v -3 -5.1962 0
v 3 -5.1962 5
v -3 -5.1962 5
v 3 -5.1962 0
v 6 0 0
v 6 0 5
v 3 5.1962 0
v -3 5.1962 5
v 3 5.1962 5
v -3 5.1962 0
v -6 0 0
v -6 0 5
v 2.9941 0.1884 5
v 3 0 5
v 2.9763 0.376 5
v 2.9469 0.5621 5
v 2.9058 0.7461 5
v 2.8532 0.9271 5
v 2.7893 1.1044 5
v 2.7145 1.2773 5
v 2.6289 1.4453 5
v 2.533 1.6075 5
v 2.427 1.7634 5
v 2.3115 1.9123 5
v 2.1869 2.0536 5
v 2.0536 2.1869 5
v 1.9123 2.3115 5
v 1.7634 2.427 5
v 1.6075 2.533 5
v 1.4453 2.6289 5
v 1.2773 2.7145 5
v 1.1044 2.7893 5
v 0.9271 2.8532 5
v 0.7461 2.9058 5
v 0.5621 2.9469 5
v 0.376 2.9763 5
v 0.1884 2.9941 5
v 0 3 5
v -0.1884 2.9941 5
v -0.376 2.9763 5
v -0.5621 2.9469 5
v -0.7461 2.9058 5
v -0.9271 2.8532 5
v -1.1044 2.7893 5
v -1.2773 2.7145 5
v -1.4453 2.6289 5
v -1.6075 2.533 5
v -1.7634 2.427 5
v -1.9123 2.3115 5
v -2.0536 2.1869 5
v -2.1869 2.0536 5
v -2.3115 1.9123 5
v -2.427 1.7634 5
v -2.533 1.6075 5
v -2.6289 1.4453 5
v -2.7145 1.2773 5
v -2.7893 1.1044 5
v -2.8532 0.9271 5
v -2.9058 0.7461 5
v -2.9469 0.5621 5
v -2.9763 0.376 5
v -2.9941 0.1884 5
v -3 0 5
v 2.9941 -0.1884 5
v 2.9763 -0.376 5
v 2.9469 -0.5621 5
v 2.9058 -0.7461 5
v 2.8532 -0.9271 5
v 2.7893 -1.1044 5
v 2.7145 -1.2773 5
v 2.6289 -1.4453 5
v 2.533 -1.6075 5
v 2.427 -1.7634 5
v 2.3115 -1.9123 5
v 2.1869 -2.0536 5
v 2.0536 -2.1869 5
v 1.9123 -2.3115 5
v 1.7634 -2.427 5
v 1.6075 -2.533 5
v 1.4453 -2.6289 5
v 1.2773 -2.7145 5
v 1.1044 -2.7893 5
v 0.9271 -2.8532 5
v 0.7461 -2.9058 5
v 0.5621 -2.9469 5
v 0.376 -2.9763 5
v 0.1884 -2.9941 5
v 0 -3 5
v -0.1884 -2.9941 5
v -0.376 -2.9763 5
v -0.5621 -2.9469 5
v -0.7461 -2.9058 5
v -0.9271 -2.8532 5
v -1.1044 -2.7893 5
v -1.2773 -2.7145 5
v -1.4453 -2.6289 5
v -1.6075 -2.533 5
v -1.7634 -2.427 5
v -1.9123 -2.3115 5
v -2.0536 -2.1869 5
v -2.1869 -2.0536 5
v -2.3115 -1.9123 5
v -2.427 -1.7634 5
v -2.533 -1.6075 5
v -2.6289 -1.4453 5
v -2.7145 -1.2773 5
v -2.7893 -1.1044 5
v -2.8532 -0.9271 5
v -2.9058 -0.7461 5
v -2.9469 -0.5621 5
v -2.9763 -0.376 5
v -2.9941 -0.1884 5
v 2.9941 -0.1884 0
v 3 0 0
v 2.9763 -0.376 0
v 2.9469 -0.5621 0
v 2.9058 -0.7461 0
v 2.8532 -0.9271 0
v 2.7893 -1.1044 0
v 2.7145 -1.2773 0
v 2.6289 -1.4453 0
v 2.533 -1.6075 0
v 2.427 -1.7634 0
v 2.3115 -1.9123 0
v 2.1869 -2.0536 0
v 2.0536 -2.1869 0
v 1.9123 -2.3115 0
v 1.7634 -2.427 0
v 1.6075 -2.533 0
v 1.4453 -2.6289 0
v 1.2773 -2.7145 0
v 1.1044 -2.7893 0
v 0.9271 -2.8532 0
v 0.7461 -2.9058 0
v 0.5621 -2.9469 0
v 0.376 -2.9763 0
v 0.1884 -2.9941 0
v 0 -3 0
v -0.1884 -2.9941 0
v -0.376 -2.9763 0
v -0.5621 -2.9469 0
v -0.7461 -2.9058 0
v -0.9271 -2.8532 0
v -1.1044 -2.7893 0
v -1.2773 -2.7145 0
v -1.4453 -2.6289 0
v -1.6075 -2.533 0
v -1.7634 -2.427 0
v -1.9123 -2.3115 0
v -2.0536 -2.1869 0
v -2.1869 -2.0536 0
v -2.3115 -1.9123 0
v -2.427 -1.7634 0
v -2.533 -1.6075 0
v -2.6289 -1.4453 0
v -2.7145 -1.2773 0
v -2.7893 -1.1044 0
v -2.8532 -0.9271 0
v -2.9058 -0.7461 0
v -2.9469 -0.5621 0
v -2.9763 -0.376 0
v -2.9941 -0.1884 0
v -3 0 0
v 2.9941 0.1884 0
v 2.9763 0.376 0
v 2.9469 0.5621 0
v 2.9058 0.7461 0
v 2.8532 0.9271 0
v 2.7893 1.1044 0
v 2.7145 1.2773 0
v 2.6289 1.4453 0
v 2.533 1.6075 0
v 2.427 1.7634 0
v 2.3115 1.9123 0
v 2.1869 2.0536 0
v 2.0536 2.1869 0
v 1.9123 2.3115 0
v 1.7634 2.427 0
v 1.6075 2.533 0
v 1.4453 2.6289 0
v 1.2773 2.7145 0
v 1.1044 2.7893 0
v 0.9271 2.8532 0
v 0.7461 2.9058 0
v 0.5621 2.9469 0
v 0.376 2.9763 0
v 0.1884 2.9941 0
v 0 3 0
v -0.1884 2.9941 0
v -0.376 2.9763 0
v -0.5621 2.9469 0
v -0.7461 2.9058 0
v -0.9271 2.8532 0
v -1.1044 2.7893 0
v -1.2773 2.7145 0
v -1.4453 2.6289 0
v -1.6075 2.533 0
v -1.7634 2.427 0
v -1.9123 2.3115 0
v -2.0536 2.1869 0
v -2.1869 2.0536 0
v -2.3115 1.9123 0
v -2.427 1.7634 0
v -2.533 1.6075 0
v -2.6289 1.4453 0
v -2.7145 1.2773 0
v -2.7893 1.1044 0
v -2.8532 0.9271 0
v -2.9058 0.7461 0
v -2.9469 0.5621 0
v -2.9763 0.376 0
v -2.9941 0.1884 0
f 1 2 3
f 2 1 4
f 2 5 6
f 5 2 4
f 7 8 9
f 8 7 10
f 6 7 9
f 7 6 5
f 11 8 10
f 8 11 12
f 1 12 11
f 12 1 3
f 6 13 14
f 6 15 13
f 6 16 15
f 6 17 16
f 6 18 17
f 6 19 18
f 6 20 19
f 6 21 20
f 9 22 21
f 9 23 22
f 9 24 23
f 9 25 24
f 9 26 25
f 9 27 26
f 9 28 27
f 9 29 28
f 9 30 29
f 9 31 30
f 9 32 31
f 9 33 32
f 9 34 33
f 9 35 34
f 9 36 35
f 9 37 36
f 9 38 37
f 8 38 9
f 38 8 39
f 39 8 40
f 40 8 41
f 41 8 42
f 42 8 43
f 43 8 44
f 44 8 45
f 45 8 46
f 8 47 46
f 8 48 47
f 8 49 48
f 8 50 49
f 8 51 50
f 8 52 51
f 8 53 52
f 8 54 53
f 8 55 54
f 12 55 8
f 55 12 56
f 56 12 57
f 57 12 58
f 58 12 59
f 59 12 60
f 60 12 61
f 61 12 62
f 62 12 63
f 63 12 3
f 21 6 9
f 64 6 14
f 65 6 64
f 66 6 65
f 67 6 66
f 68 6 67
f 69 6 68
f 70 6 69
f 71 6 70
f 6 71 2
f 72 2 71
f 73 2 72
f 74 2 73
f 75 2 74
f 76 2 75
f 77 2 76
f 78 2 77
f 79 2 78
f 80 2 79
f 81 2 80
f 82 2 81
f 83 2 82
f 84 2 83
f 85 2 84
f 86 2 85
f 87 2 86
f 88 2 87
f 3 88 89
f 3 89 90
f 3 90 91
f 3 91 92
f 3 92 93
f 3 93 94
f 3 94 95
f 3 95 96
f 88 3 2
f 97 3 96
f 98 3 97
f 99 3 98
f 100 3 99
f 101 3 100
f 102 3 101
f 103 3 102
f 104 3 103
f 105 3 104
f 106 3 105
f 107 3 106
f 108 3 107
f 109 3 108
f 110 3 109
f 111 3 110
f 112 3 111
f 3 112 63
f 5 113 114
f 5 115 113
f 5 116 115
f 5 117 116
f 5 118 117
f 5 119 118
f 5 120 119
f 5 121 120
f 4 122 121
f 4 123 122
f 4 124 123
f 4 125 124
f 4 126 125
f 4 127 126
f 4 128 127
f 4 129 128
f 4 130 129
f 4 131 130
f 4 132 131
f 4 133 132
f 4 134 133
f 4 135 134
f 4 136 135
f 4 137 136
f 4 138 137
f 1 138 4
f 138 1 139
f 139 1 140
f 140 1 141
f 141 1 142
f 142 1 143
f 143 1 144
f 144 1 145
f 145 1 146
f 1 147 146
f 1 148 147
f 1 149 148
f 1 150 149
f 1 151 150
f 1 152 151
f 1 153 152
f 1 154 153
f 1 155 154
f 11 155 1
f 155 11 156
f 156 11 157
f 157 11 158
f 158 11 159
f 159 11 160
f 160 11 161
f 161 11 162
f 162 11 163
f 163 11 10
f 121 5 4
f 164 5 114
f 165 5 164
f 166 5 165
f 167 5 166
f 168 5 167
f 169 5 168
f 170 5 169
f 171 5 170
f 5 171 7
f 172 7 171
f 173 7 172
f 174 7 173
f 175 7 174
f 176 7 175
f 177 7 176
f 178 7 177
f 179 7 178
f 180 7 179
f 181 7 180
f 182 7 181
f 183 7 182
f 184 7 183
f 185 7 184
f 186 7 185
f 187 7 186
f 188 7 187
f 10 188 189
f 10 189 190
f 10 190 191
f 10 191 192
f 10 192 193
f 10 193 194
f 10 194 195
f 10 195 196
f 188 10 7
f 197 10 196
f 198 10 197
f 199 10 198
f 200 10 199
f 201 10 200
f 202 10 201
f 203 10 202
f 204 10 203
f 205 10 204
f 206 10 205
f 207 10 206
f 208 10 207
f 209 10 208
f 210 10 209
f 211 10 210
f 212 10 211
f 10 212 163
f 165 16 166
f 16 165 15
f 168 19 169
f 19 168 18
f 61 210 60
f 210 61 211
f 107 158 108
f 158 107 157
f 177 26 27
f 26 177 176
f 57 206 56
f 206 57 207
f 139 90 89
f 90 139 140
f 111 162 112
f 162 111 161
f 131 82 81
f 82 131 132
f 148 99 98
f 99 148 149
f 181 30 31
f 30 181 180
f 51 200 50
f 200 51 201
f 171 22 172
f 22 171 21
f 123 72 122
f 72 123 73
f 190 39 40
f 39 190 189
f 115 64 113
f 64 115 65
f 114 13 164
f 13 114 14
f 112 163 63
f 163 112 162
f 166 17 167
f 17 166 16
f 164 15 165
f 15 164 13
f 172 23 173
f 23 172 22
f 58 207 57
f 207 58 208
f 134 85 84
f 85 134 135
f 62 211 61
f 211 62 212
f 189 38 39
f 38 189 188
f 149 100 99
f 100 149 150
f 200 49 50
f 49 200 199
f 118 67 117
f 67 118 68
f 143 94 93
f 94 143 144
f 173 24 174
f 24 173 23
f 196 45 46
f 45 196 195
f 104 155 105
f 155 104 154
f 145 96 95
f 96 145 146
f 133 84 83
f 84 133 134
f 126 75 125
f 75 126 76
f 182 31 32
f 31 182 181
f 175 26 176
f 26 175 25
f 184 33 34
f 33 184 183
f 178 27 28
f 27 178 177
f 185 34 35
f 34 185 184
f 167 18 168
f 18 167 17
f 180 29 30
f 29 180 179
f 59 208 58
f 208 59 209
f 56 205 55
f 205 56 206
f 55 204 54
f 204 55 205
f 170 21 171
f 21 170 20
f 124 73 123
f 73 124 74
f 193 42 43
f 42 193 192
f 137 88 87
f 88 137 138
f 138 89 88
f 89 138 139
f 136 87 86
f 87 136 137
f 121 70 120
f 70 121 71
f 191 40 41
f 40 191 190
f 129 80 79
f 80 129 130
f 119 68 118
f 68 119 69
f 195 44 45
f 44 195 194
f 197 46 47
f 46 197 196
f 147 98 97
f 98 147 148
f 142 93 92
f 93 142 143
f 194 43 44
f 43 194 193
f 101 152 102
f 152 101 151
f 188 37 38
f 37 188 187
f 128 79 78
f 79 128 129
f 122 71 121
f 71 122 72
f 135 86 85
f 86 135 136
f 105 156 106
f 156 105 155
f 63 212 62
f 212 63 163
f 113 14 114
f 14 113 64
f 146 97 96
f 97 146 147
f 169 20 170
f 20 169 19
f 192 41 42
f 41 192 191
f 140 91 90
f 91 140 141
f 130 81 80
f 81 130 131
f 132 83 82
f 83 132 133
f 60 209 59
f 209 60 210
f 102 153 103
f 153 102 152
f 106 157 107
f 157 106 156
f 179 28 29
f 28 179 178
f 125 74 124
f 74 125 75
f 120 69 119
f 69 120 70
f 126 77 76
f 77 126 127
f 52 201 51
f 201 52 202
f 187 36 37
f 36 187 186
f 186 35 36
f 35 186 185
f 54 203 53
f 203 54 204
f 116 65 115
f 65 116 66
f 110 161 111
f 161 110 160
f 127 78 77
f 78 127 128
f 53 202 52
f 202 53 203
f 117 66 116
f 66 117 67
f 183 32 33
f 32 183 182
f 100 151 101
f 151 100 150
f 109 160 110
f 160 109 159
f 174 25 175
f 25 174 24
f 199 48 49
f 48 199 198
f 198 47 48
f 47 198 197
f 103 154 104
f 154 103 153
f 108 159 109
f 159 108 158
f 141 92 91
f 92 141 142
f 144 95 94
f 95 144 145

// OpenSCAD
// Nut Component
module nut() {
    difference() {
        // Hexagonal outer shape with uniform dimensions
        cylinder(h = 5, r = 6, $fn = 6);
        // Cylindrical inner hole with reduced depth
        translate([0, 0, -0.5]) cylinder(h = 6, r = 3, $fn = 100);
    }
}

// Render the nut
nut();
